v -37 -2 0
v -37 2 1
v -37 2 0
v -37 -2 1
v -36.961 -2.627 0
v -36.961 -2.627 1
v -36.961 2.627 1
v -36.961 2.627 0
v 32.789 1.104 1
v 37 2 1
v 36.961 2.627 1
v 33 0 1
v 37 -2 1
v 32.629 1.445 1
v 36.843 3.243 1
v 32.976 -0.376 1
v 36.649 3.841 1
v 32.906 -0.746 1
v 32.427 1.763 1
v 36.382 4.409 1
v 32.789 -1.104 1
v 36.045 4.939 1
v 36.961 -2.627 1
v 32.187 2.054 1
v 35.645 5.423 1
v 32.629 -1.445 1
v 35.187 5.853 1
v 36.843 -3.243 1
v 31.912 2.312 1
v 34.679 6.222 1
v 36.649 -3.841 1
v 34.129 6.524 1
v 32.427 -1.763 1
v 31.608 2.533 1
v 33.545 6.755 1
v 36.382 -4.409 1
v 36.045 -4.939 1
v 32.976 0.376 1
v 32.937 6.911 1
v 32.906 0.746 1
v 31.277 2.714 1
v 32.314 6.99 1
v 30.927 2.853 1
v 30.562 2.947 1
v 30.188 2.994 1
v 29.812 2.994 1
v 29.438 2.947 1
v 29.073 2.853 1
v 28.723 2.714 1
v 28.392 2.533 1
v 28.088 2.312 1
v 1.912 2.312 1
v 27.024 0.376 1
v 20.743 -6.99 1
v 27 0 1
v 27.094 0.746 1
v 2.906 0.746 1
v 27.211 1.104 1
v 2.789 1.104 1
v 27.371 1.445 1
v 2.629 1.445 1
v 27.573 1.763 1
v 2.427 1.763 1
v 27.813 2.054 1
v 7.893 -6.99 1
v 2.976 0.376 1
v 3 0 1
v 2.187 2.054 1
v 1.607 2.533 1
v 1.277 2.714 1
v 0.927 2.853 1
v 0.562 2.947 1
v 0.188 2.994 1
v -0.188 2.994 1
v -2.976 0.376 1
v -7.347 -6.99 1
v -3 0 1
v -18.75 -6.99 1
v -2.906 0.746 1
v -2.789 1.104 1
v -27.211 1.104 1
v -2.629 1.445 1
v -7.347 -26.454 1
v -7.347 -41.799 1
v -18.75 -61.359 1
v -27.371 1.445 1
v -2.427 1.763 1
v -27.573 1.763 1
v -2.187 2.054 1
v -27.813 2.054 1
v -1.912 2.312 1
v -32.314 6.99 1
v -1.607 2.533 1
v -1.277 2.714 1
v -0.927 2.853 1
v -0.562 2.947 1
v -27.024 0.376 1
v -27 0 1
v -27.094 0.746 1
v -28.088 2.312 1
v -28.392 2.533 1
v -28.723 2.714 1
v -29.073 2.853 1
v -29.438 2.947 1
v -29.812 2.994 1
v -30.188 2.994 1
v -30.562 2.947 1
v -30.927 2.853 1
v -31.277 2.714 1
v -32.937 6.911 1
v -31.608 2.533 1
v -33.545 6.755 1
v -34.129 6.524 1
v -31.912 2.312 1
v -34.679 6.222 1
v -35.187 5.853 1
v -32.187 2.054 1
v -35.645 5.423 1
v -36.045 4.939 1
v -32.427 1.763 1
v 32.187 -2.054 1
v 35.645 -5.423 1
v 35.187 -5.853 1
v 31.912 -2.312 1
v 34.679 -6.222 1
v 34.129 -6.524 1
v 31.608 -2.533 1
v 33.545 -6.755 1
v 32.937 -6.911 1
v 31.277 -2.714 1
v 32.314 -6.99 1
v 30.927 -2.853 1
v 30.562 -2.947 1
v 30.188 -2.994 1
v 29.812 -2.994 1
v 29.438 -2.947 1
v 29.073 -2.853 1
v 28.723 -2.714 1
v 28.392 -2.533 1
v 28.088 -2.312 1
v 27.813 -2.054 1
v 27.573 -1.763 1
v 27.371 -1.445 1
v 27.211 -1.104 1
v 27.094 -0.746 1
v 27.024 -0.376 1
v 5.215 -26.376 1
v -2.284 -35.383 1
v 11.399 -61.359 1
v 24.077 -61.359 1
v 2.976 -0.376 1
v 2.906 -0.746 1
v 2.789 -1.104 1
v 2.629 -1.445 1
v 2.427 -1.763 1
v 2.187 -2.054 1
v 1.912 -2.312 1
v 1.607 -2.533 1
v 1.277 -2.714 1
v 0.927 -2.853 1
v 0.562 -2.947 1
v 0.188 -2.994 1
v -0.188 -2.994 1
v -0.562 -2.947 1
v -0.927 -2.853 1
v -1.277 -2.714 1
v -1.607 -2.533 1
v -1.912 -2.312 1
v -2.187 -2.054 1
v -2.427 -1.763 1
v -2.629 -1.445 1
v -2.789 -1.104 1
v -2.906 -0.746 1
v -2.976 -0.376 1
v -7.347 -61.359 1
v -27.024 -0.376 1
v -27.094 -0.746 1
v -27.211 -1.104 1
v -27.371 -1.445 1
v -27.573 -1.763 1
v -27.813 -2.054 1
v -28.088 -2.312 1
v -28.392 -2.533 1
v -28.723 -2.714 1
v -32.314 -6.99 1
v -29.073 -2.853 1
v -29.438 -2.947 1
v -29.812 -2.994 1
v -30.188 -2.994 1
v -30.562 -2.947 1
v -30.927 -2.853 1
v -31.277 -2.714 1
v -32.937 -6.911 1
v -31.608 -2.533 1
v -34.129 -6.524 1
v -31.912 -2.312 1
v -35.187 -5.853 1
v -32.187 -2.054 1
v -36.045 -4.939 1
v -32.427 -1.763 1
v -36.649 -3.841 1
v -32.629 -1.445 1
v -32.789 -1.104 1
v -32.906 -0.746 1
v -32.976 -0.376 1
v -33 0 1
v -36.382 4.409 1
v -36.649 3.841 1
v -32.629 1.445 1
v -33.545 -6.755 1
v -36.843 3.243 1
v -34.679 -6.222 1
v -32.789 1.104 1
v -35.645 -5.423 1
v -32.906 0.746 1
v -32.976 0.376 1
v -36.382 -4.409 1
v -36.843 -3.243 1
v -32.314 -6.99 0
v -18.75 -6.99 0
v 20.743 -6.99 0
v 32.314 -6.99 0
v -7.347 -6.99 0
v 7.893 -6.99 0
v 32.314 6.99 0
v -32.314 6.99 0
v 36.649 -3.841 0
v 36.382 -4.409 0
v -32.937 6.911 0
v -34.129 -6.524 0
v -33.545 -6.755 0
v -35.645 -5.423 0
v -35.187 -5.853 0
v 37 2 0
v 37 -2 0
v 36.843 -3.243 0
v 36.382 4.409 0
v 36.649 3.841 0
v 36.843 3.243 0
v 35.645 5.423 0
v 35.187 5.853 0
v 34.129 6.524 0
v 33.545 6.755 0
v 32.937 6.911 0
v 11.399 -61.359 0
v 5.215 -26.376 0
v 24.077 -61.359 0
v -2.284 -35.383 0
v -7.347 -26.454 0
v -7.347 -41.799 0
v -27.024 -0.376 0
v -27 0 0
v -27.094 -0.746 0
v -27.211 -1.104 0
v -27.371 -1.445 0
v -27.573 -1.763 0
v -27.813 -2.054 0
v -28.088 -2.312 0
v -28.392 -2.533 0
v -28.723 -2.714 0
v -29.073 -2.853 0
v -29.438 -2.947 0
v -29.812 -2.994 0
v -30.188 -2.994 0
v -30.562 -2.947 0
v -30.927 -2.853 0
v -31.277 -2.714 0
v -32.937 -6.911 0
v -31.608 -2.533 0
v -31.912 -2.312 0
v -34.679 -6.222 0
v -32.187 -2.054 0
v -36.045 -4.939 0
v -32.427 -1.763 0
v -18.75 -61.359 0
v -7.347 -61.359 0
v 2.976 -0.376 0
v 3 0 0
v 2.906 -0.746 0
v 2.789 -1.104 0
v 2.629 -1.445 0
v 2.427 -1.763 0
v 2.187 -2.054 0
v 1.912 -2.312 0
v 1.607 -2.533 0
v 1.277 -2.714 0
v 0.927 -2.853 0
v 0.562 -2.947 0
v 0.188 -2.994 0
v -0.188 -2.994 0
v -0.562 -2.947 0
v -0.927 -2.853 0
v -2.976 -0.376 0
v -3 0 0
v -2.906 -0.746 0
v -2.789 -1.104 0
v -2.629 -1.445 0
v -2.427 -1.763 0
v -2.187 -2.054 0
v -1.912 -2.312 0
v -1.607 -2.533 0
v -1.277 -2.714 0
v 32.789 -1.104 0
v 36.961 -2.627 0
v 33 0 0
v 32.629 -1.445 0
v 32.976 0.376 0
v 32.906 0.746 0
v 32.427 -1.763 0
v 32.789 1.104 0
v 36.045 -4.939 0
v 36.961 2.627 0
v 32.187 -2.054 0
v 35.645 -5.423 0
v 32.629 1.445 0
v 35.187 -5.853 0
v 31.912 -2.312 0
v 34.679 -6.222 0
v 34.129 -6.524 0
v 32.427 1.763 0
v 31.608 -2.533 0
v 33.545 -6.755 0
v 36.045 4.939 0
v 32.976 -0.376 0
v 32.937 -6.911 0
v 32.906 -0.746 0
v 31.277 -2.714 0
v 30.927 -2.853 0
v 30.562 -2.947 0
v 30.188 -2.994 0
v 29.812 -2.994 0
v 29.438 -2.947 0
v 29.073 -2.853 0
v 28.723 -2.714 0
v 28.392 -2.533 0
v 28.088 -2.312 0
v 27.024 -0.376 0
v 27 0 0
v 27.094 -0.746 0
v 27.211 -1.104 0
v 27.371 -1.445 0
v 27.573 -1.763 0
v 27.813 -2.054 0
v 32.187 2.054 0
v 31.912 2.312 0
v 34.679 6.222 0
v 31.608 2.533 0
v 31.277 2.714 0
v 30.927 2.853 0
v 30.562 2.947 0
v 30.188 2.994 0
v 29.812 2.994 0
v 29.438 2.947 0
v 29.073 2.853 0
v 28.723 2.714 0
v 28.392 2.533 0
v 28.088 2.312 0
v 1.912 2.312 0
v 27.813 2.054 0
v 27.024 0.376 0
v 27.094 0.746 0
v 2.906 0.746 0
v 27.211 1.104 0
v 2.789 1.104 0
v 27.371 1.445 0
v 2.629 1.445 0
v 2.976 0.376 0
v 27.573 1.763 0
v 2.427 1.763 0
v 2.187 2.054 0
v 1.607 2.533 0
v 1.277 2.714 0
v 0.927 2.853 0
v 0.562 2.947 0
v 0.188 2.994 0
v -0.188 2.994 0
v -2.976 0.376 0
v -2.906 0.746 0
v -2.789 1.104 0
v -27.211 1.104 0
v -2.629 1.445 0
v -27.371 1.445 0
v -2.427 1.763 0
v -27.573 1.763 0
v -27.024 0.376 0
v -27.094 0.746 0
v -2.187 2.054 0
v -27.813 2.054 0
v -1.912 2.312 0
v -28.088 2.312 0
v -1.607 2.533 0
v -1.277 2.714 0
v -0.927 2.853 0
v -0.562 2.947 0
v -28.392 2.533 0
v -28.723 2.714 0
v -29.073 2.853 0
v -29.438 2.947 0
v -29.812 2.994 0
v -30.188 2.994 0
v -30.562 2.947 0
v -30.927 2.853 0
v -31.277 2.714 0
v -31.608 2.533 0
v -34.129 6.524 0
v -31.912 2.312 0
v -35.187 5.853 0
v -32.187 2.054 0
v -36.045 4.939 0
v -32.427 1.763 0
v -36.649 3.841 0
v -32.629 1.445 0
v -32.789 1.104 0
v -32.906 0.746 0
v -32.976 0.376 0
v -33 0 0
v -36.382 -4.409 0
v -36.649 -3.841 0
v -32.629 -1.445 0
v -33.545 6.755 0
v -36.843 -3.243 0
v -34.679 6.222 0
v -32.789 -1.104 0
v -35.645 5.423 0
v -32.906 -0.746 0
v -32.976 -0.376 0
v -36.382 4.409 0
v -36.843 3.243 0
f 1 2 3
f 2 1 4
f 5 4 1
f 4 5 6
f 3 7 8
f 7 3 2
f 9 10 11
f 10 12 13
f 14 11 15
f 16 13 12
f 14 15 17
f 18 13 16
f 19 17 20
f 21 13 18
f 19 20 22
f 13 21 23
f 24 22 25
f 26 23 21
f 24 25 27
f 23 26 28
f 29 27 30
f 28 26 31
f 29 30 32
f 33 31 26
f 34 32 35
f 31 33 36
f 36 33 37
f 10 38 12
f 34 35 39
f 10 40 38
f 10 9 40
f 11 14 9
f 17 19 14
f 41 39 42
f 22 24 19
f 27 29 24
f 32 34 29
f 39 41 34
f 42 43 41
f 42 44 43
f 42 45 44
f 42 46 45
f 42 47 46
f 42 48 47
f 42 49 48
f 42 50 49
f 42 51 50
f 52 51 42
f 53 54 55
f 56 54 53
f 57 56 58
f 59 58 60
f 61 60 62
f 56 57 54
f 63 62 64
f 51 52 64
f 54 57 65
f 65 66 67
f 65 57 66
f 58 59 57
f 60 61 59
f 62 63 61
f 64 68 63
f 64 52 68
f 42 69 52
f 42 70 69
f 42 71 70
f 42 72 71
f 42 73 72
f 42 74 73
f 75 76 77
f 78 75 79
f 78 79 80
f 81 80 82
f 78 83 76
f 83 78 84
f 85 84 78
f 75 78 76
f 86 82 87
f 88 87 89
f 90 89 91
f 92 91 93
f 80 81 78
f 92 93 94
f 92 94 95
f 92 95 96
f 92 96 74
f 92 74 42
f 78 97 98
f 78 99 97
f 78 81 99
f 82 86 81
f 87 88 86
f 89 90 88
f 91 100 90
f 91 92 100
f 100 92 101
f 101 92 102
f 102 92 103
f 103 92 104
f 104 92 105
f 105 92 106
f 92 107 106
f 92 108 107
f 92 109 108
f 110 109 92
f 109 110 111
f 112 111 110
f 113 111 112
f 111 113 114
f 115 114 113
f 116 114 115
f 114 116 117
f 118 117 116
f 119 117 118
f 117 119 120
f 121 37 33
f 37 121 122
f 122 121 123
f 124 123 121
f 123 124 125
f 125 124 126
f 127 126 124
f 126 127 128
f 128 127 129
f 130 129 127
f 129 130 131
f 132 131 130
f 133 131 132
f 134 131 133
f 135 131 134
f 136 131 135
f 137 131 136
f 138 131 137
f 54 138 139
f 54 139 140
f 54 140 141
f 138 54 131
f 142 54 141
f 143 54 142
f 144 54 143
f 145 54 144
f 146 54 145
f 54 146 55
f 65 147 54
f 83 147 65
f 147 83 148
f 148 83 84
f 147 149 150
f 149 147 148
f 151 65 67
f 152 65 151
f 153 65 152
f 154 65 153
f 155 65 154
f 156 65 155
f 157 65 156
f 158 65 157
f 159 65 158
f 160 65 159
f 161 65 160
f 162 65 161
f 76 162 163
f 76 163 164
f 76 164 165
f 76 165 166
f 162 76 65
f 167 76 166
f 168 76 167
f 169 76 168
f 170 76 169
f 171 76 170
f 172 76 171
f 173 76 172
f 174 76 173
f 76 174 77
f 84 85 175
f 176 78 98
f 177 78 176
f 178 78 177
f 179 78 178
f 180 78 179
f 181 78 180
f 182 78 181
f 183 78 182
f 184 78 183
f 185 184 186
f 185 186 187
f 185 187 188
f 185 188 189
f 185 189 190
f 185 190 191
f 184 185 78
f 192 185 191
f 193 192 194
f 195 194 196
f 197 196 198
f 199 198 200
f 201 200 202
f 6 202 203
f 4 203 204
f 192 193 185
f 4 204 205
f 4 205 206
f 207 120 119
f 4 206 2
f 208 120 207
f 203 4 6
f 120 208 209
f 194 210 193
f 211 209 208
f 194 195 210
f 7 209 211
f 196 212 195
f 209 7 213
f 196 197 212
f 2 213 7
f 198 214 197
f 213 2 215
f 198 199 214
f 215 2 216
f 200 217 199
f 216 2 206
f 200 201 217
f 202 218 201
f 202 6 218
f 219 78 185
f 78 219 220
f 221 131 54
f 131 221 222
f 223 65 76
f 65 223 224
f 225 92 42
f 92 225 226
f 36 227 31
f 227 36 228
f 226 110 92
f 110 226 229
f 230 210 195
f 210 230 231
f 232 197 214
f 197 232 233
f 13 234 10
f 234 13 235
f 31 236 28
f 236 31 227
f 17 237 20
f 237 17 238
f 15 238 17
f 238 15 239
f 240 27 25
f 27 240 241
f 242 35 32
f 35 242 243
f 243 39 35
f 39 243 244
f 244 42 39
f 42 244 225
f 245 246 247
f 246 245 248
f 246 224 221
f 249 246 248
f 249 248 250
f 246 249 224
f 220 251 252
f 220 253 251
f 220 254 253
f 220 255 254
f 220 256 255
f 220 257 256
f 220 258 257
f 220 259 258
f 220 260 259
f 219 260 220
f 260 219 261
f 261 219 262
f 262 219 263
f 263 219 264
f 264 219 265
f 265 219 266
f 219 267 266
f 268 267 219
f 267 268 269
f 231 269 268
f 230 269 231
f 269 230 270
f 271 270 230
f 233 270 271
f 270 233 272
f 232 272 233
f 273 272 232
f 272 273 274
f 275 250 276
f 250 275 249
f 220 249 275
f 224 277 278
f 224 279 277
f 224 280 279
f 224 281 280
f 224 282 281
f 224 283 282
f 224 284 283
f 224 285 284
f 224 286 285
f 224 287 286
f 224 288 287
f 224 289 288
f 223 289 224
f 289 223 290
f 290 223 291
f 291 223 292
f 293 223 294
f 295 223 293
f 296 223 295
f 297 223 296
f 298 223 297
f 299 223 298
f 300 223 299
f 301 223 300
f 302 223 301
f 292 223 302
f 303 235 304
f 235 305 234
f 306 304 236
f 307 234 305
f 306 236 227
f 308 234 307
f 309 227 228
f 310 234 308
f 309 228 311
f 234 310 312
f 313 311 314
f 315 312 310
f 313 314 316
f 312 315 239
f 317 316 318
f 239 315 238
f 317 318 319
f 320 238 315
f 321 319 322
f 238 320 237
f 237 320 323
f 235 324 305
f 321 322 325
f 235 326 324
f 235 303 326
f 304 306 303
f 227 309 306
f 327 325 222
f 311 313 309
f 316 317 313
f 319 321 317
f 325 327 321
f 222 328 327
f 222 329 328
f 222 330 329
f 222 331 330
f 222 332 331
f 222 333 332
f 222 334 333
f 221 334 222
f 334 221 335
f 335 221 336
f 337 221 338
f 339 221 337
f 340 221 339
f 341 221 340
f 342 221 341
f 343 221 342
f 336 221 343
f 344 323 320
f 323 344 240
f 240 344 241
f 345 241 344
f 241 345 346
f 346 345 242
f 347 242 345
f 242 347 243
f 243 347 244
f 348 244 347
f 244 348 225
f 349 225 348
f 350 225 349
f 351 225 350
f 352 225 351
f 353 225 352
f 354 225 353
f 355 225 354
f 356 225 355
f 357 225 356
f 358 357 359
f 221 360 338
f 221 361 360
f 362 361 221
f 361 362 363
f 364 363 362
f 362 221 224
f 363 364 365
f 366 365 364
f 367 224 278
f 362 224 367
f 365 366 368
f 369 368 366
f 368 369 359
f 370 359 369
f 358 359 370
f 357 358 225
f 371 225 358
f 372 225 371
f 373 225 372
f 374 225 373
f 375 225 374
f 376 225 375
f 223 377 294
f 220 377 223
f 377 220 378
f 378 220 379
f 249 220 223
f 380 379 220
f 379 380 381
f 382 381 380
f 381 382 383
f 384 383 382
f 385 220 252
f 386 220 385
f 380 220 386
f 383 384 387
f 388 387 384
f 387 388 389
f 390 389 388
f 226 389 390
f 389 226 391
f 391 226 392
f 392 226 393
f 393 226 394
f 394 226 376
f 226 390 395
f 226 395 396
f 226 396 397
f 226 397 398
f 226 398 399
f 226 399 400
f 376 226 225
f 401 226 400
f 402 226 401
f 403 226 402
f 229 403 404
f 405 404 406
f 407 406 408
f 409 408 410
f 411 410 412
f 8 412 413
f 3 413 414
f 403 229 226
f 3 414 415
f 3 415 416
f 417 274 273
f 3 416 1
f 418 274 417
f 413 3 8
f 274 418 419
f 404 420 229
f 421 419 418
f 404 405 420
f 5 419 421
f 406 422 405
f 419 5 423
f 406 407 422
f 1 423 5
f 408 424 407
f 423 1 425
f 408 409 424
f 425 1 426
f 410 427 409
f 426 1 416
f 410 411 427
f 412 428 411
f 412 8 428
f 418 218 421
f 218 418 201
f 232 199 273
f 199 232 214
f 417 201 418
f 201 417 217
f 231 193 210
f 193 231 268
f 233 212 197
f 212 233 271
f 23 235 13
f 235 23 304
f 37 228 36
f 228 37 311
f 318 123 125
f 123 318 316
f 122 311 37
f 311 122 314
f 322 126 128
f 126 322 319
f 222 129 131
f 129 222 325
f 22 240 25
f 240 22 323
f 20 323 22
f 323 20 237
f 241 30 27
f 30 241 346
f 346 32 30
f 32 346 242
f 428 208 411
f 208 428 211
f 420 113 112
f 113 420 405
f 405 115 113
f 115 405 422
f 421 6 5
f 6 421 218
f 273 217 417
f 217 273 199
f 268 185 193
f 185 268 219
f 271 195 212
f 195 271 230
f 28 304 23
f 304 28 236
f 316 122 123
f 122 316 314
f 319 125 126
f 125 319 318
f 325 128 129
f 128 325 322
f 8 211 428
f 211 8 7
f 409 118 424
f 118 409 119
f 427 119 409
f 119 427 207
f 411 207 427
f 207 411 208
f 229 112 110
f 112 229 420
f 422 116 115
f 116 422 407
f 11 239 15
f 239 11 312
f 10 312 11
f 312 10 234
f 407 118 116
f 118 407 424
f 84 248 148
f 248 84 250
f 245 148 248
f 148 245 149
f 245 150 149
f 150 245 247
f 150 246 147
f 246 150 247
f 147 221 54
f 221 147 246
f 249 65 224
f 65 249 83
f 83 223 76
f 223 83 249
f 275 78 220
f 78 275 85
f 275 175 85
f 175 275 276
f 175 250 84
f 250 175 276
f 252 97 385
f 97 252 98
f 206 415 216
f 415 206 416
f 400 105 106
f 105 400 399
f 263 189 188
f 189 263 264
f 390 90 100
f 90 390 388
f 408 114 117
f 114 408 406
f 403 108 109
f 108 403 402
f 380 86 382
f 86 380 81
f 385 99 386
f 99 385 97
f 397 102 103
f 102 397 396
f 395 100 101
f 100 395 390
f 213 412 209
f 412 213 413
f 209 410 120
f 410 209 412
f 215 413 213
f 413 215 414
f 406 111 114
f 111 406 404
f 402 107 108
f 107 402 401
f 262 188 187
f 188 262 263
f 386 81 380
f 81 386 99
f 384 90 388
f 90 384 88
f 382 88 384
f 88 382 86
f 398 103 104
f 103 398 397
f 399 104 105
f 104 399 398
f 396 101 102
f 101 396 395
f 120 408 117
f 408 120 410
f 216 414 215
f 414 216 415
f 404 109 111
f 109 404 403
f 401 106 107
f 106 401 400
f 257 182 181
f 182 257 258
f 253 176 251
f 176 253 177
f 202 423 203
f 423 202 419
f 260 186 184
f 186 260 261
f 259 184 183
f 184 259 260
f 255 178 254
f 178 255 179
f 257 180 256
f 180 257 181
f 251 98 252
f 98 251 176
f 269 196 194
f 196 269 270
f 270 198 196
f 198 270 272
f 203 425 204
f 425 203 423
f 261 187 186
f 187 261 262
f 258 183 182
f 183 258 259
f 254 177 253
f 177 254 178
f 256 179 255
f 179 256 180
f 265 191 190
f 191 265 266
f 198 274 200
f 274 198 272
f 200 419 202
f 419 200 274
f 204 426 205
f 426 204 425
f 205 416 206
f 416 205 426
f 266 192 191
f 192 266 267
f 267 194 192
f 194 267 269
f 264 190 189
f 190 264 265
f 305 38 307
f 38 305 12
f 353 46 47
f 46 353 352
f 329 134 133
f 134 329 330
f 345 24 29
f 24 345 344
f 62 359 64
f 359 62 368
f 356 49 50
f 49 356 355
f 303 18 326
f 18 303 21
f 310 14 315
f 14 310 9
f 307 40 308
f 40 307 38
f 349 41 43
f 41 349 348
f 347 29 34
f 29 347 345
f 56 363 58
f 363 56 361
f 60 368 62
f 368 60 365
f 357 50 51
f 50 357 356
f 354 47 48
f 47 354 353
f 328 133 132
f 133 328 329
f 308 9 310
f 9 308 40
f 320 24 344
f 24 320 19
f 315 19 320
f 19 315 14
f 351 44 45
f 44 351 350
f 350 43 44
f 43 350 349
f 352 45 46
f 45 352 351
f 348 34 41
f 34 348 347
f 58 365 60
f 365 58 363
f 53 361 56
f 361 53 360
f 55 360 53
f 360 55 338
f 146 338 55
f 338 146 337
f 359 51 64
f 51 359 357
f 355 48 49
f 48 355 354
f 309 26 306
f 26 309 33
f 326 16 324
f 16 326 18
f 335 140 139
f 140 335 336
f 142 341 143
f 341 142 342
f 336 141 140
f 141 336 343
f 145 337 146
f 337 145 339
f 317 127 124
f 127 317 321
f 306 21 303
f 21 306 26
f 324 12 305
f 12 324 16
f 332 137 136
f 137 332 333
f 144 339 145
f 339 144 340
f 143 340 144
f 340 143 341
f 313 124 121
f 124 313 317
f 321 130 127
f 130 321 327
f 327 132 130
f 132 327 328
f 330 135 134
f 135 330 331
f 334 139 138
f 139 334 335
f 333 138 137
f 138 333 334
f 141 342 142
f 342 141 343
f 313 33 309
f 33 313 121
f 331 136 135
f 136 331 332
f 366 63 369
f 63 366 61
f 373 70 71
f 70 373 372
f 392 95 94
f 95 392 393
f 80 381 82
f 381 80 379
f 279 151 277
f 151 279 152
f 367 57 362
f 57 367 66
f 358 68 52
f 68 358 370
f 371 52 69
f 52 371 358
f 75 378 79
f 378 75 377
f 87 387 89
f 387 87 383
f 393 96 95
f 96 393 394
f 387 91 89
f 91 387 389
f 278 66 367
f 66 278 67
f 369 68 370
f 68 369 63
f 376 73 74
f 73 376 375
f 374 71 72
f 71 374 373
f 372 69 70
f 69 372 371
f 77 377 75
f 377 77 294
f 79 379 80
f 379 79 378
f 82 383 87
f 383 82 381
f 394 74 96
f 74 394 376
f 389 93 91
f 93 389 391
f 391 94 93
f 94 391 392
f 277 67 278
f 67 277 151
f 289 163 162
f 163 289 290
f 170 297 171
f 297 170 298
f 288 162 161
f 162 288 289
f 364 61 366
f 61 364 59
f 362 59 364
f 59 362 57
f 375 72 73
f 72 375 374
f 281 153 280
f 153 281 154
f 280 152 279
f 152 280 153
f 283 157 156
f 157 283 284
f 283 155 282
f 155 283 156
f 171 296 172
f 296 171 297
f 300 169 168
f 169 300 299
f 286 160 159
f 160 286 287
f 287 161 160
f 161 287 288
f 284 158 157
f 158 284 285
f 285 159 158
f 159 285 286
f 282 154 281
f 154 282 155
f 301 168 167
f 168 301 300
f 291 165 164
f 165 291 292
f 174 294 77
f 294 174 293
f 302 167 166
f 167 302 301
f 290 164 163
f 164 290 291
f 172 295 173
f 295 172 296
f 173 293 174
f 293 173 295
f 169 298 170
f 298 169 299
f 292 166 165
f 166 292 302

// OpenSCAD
$fn = 50;


difference() {
	union() {
		translate(v = [0, 0, 0]) {
			rotate(a = [0, 0, 0]) {
				hull() {
					translate(v = [-32.0000000000, 2.0000000000, 0]) {
						rotate(a = [0, 0, 0]) {
							translate(v = [0, 0, 0]) {
								rotate(a = [0, 0, 0]) {
									cylinder(h = 1, r = 5);
								}
							}
						}
					}
					translate(v = [32.0000000000, 2.0000000000, 0]) {
						rotate(a = [0, 0, 0]) {
							translate(v = [0, 0, 0]) {
								rotate(a = [0, 0, 0]) {
									cylinder(h = 1, r = 5);
								}
							}
						}
					}
					translate(v = [-32.0000000000, -2.0000000000, 0]) {
						rotate(a = [0, 0, 0]) {
							translate(v = [0, 0, 0]) {
								rotate(a = [0, 0, 0]) {
									cylinder(h = 1, r = 5);
								}
							}
						}
					}
					translate(v = [32.0000000000, -2.0000000000, 0]) {
						rotate(a = [0, 0, 0]) {
							translate(v = [0, 0, 0]) {
								rotate(a = [0, 0, 0]) {
									cylinder(h = 1, r = 5);
								}
							}
						}
					}
				}
			}
		}
		translate(v = [0, -5, 0]) {
			rotate(a = [0, 0, 0]) {
				linear_extrude(height = 1) {
					text(font = "DejaVu Sans Mono:style=Bold", halign = "center", size = 57.0000000000, text = "K", valign = "top");
				}
			}
		}
	}
	union() {
		translate(v = [-30.0000000000, 0.0000000000, -125.0000000000]) {
			rotate(a = [0, 0, 0]) {
				cylinder(h = 250, r = 3.0000000000);
			}
		}
		translate(v = [30.0000000000, 0.0000000000, -125.0000000000]) {
			rotate(a = [0, 0, 0]) {
				cylinder(h = 250, r = 3.0000000000);
			}
		}
		translate(v = [30.0000000000, 0.0000000000, -125.0000000000]) {
			rotate(a = [0, 0, 0]) {
				cylinder(h = 250, r = 3.0000000000);
			}
		}
		translate(v = [0, 0, -125.0000000000]) {
			rotate(a = [0, 0, 0]) {
				cylinder(h = 250, r = 3.0000000000);
			}
		}
	}
}
